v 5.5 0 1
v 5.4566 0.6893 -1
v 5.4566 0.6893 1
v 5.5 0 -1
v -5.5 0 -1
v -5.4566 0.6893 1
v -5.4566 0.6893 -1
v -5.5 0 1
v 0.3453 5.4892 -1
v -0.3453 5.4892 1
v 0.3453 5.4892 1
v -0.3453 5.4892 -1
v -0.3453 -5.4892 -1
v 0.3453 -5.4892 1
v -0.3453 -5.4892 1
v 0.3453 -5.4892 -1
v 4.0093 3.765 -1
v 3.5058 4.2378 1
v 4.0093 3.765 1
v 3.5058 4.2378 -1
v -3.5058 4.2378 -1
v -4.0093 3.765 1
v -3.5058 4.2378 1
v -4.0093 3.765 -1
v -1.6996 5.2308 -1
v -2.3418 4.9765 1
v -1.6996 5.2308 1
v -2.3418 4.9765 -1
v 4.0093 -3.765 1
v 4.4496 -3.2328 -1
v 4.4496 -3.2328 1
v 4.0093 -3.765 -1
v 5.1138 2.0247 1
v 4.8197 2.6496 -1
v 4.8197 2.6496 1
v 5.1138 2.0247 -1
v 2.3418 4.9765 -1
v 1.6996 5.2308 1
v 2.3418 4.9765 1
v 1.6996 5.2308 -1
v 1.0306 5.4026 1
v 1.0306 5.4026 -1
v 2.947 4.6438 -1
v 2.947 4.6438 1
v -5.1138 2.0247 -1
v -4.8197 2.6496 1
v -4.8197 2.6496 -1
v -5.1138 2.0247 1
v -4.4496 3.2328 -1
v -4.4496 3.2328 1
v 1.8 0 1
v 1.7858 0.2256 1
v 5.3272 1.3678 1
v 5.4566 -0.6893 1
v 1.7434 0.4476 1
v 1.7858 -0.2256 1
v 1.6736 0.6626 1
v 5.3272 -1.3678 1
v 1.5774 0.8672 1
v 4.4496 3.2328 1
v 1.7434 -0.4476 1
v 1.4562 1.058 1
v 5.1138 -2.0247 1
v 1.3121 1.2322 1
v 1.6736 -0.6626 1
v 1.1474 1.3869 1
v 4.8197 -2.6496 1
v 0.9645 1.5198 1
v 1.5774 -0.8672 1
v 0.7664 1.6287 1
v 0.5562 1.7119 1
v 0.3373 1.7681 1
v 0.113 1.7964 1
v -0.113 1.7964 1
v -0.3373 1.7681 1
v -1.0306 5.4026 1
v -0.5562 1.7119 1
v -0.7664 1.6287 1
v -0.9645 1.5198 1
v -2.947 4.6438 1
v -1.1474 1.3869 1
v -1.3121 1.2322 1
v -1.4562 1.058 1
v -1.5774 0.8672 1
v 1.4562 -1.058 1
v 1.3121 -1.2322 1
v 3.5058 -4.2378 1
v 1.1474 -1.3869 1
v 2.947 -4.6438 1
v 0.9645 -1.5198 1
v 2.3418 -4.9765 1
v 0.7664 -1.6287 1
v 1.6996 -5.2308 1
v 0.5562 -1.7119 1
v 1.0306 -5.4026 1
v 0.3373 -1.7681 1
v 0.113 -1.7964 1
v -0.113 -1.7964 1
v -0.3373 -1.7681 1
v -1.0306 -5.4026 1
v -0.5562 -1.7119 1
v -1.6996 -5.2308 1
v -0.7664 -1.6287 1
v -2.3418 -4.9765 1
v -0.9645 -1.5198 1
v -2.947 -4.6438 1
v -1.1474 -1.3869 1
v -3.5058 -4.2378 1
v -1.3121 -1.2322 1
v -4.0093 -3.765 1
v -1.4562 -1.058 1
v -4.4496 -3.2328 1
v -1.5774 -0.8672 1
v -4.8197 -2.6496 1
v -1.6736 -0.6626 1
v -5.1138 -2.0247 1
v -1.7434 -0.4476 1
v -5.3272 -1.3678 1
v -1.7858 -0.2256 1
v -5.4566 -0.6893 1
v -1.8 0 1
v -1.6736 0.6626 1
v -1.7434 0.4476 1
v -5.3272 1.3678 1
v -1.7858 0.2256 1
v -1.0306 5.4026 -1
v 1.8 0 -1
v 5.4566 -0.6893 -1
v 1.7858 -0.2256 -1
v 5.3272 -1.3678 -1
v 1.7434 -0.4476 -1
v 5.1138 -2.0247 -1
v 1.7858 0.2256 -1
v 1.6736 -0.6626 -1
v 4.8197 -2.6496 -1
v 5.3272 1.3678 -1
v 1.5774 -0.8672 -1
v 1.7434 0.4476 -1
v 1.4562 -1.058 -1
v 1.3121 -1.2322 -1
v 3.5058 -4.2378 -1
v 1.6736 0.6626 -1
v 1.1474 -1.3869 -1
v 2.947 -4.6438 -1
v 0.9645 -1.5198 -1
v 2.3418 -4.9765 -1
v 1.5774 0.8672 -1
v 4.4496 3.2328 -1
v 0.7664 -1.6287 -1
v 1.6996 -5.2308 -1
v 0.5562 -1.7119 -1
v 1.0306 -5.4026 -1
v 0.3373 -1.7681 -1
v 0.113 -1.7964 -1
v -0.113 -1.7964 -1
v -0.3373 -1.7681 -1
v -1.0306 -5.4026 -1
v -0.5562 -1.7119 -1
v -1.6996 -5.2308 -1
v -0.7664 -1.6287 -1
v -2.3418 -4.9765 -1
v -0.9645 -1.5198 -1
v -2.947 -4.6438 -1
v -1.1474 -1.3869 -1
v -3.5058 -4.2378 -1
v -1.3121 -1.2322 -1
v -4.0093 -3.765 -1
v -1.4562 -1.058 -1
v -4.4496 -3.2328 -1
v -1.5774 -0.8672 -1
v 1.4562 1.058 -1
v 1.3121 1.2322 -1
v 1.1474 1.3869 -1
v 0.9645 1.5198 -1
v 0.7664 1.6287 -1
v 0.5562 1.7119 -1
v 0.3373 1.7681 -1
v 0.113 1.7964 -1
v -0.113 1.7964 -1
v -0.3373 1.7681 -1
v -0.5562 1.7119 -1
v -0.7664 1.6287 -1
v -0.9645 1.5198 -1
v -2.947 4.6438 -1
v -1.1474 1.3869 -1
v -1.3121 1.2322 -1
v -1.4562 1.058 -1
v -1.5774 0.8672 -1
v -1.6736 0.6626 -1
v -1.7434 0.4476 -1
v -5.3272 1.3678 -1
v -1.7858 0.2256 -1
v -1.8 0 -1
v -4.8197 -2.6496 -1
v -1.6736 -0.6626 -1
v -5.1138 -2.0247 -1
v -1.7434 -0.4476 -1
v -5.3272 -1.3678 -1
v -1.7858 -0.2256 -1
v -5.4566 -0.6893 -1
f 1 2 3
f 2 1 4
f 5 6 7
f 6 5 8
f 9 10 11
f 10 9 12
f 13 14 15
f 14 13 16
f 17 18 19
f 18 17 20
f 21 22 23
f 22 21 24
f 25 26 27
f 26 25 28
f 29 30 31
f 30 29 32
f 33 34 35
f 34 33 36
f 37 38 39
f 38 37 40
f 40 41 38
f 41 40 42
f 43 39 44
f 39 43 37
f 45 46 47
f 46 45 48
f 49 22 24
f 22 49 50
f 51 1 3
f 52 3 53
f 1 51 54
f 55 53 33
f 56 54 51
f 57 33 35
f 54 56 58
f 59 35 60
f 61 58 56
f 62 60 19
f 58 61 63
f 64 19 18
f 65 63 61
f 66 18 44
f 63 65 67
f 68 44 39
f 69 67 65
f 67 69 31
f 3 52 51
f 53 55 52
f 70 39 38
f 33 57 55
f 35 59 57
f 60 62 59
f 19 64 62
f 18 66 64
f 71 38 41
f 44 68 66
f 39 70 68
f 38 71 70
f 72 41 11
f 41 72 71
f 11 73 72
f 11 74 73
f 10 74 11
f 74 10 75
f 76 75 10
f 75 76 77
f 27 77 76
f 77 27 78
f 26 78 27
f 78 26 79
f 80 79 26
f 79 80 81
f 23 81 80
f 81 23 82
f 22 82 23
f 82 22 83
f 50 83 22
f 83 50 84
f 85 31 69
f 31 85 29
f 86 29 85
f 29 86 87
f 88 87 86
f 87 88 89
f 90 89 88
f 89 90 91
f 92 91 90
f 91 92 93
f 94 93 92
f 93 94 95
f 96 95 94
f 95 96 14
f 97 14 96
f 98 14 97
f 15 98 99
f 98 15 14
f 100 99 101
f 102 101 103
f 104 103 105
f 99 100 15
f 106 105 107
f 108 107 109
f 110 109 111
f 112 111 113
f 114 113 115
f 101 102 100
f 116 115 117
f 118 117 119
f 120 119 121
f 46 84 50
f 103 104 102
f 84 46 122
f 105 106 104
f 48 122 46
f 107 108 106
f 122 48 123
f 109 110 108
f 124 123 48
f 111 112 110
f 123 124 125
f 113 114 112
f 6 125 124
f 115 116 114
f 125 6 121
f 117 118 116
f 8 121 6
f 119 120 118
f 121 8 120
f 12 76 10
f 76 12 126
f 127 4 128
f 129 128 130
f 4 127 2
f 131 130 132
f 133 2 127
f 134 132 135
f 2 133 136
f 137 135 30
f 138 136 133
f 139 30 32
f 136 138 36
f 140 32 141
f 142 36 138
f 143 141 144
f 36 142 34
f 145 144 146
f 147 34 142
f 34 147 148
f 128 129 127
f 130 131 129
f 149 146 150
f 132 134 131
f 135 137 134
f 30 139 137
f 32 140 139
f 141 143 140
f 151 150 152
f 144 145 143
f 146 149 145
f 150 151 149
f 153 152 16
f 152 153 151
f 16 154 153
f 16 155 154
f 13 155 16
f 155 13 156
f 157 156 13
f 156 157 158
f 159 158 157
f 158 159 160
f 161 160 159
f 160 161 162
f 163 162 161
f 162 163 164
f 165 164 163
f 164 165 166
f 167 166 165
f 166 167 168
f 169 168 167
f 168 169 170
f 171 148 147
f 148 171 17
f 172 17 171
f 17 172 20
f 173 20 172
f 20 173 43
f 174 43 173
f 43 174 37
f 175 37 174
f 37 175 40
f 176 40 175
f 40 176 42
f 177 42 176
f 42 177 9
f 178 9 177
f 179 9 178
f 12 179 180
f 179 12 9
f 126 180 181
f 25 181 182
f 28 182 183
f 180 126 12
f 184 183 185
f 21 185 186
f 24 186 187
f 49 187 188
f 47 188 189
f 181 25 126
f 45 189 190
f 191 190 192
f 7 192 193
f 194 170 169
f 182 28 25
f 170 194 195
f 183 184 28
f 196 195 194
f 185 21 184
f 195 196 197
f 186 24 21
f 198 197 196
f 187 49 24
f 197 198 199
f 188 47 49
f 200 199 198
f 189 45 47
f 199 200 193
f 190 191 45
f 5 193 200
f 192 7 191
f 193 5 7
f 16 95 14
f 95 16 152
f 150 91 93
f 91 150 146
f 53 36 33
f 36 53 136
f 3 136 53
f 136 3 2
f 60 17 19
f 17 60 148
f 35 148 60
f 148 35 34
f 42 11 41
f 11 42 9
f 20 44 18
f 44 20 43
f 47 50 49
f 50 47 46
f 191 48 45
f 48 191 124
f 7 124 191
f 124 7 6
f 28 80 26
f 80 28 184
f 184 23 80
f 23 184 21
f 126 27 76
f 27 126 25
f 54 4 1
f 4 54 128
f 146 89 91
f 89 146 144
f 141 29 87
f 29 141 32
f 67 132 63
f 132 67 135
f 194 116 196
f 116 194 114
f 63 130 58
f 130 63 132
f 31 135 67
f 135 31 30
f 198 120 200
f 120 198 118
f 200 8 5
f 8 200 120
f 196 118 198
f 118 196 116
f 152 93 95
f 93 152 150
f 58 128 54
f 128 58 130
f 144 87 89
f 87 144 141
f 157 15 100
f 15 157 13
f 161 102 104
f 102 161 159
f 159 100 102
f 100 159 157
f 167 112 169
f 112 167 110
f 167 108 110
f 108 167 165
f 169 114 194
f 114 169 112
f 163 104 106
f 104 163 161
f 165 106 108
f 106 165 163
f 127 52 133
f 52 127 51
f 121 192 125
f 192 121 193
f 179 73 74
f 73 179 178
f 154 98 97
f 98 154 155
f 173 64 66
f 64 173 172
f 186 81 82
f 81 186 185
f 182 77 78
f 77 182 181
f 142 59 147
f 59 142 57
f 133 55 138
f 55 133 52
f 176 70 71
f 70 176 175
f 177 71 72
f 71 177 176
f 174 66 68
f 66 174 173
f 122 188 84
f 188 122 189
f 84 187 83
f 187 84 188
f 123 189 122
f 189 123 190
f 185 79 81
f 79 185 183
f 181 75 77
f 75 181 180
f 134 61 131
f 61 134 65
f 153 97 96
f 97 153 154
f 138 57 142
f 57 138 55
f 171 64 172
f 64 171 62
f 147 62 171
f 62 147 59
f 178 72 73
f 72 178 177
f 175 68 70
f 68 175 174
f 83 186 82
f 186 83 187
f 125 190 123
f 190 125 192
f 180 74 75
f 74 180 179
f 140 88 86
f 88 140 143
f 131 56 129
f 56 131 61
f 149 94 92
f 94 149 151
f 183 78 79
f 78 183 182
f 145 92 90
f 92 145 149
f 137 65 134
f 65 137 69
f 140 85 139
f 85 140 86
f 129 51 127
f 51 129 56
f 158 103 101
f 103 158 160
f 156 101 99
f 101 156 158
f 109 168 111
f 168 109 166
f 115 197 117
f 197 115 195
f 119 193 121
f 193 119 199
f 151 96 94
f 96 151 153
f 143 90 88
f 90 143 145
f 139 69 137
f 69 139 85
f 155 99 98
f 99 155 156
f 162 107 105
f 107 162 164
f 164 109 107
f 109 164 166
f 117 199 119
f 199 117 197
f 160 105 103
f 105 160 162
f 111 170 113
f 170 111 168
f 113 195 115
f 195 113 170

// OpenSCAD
$fn = 50;


difference() {
	union() {
		translate(v = [0, 0, -1.0000000000]) {
			cylinder(h = 2, r = 5.5000000000);
		}
	}
	union() {
		#translate(v = [0, 0, -100.0000000000]) {
			cylinder(h = 200, r = 1.8000000000);
		}
	}
}
